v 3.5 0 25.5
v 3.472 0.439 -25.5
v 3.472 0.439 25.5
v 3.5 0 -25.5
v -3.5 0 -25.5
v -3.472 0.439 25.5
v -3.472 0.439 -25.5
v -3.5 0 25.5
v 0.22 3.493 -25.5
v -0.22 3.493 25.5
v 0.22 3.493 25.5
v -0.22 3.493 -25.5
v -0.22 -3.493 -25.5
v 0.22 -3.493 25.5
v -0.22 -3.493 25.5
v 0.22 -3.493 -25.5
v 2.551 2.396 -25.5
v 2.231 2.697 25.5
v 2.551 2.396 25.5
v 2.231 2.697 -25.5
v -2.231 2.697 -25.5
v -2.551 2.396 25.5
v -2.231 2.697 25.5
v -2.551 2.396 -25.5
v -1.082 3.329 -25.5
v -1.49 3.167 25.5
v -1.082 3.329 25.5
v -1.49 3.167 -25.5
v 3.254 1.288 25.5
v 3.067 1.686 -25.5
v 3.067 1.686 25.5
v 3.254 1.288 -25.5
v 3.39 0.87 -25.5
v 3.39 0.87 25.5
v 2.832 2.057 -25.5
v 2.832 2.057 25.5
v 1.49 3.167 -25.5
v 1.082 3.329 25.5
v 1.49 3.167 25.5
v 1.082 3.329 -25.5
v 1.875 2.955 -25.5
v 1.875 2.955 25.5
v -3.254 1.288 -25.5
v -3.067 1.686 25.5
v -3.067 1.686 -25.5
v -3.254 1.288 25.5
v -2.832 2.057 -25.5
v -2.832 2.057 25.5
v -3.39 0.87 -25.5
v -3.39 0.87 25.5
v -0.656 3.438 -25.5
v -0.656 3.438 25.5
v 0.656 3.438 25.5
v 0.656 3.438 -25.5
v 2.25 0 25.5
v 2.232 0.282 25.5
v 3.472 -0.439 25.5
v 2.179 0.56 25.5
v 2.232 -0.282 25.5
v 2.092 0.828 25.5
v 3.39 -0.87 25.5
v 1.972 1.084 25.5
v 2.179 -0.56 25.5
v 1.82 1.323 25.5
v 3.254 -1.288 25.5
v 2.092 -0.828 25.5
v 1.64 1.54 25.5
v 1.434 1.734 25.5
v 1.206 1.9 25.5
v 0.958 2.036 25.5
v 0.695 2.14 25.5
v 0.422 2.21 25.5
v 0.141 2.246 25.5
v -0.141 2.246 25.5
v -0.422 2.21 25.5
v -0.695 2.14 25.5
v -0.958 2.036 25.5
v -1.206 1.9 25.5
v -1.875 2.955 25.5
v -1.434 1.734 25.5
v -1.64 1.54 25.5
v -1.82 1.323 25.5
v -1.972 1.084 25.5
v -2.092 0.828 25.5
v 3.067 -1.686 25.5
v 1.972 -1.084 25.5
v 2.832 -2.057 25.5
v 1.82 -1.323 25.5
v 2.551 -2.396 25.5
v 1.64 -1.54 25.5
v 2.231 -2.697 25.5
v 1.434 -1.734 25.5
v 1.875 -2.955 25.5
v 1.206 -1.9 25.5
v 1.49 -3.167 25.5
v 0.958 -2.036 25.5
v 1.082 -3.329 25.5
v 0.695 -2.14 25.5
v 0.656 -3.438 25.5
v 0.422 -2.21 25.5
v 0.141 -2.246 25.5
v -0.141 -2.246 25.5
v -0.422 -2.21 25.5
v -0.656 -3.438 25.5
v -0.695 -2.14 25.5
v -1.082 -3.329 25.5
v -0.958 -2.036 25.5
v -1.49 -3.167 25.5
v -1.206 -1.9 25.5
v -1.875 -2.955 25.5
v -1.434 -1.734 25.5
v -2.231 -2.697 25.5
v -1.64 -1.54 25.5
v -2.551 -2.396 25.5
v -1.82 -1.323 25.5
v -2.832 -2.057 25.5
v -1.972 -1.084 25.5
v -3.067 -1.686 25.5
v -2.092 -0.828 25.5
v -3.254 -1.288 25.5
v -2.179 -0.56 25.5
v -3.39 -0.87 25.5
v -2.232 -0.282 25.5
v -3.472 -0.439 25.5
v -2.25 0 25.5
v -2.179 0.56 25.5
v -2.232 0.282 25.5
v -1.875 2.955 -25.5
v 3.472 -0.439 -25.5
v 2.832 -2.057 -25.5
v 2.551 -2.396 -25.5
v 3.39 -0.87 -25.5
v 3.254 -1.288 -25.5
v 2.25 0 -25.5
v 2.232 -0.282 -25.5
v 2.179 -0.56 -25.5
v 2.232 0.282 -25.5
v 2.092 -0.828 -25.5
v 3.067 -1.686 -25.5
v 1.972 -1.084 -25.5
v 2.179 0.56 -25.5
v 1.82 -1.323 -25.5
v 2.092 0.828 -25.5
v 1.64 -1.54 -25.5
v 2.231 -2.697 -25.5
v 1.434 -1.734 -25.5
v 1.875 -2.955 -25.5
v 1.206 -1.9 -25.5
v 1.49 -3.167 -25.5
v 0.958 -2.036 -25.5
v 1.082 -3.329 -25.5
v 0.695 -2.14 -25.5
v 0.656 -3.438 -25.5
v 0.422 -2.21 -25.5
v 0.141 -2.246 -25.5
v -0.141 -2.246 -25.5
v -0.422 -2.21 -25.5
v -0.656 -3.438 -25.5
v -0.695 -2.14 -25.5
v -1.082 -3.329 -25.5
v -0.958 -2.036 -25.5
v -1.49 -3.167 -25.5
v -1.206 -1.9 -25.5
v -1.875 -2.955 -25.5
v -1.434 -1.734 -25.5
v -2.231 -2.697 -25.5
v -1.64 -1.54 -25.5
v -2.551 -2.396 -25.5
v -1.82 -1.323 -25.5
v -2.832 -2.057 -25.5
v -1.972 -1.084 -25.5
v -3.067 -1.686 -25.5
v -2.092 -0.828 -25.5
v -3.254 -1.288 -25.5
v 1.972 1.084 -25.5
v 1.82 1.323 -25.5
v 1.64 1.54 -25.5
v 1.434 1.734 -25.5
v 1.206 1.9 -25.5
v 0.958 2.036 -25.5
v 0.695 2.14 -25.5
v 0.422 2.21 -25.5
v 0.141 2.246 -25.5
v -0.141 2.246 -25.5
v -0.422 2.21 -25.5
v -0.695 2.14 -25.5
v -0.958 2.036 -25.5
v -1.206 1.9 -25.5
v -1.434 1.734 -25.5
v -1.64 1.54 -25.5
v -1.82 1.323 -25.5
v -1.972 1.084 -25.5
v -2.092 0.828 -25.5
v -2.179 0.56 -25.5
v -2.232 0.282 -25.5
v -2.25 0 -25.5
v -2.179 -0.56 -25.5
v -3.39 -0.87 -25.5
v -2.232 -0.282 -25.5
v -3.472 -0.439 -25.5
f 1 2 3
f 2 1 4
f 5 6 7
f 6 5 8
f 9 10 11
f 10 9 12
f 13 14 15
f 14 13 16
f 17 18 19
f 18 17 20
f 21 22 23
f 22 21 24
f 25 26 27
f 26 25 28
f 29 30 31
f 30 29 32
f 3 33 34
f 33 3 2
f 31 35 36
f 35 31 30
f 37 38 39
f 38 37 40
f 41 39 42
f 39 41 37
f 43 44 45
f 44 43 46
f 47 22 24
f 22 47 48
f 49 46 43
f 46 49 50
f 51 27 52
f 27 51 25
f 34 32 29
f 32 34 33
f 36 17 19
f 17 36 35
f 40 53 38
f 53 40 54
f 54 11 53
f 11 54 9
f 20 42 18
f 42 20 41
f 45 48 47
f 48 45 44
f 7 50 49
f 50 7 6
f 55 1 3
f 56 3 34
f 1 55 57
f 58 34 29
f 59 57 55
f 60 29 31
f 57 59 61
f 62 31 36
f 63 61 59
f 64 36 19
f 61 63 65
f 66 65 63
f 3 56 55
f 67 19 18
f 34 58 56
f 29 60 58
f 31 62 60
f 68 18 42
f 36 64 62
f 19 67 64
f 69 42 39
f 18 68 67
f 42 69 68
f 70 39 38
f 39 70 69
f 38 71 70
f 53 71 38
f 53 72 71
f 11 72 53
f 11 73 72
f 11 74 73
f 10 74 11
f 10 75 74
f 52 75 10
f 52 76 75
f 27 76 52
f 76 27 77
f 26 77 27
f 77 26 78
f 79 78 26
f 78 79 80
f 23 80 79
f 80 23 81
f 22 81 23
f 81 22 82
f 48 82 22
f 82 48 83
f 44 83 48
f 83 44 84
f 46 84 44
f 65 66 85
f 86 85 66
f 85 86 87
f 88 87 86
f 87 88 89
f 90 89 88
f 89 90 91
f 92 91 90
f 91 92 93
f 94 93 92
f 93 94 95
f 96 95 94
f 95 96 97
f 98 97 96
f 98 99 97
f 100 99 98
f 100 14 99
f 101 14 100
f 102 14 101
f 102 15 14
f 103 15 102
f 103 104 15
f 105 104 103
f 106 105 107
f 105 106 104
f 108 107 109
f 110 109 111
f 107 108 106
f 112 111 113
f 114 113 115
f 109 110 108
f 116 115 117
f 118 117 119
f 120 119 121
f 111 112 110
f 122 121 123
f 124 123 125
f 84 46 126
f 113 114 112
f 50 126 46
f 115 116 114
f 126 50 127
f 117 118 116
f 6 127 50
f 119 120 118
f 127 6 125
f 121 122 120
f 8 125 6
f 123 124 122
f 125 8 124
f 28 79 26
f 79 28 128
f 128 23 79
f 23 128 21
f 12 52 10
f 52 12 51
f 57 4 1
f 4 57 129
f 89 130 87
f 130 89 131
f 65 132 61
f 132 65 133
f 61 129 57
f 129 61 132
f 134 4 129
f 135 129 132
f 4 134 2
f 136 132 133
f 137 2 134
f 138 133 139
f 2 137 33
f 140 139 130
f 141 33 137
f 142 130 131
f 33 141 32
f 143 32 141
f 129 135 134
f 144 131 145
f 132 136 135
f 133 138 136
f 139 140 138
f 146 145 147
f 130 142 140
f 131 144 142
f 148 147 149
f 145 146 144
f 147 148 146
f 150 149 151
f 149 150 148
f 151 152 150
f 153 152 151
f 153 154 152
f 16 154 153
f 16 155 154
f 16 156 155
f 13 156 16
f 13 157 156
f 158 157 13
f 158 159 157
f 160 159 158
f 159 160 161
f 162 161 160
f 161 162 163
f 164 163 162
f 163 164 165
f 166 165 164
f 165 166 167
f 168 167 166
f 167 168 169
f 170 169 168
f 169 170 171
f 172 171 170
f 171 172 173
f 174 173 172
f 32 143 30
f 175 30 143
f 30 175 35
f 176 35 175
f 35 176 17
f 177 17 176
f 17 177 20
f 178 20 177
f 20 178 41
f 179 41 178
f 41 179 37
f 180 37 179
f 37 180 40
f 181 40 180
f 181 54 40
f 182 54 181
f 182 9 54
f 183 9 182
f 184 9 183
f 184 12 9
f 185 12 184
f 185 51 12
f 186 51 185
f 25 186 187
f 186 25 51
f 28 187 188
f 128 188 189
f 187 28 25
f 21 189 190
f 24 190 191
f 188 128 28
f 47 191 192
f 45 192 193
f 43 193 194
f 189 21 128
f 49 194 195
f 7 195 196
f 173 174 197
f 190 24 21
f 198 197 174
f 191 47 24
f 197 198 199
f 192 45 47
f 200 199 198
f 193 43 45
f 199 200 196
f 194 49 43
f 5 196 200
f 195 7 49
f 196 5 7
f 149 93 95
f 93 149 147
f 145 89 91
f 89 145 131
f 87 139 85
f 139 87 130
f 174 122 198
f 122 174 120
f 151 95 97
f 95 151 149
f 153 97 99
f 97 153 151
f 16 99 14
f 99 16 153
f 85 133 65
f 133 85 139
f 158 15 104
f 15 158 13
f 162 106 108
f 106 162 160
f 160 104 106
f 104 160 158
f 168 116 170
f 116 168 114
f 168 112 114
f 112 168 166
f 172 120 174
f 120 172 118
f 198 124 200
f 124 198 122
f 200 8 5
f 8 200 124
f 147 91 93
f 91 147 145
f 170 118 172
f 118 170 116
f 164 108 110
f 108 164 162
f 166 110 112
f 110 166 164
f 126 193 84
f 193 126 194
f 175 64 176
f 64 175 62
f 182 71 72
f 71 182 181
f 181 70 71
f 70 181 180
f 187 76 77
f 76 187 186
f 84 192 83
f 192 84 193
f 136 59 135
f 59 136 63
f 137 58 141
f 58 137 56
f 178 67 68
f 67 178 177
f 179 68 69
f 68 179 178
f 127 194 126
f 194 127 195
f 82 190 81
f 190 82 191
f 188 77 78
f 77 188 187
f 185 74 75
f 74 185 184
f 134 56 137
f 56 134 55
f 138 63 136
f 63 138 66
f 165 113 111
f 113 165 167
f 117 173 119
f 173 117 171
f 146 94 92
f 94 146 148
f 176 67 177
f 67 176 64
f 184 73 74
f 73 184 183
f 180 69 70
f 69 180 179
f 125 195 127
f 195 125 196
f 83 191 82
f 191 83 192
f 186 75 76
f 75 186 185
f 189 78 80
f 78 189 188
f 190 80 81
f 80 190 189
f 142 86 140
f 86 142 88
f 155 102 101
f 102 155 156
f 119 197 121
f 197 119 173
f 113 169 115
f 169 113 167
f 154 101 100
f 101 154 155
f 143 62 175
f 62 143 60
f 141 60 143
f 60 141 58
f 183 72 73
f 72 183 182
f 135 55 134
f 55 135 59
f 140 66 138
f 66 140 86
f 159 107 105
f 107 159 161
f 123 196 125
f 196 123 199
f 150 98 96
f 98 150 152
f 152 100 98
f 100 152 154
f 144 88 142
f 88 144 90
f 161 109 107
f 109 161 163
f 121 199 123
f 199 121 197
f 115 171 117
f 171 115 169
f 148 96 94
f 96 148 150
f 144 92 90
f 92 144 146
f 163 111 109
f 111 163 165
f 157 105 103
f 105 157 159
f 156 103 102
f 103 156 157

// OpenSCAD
$fn = 50;


difference() {
	union() {
		translate(v = [0, 0, -25.5000000000]) {
			cylinder(h = 51, r = 3.5000000000);
		}
	}
	union() {
		translate(v = [0, 0, -100.0000000000]) {
			cylinder(h = 200, r = 2.2500000000);
		}
	}
}
